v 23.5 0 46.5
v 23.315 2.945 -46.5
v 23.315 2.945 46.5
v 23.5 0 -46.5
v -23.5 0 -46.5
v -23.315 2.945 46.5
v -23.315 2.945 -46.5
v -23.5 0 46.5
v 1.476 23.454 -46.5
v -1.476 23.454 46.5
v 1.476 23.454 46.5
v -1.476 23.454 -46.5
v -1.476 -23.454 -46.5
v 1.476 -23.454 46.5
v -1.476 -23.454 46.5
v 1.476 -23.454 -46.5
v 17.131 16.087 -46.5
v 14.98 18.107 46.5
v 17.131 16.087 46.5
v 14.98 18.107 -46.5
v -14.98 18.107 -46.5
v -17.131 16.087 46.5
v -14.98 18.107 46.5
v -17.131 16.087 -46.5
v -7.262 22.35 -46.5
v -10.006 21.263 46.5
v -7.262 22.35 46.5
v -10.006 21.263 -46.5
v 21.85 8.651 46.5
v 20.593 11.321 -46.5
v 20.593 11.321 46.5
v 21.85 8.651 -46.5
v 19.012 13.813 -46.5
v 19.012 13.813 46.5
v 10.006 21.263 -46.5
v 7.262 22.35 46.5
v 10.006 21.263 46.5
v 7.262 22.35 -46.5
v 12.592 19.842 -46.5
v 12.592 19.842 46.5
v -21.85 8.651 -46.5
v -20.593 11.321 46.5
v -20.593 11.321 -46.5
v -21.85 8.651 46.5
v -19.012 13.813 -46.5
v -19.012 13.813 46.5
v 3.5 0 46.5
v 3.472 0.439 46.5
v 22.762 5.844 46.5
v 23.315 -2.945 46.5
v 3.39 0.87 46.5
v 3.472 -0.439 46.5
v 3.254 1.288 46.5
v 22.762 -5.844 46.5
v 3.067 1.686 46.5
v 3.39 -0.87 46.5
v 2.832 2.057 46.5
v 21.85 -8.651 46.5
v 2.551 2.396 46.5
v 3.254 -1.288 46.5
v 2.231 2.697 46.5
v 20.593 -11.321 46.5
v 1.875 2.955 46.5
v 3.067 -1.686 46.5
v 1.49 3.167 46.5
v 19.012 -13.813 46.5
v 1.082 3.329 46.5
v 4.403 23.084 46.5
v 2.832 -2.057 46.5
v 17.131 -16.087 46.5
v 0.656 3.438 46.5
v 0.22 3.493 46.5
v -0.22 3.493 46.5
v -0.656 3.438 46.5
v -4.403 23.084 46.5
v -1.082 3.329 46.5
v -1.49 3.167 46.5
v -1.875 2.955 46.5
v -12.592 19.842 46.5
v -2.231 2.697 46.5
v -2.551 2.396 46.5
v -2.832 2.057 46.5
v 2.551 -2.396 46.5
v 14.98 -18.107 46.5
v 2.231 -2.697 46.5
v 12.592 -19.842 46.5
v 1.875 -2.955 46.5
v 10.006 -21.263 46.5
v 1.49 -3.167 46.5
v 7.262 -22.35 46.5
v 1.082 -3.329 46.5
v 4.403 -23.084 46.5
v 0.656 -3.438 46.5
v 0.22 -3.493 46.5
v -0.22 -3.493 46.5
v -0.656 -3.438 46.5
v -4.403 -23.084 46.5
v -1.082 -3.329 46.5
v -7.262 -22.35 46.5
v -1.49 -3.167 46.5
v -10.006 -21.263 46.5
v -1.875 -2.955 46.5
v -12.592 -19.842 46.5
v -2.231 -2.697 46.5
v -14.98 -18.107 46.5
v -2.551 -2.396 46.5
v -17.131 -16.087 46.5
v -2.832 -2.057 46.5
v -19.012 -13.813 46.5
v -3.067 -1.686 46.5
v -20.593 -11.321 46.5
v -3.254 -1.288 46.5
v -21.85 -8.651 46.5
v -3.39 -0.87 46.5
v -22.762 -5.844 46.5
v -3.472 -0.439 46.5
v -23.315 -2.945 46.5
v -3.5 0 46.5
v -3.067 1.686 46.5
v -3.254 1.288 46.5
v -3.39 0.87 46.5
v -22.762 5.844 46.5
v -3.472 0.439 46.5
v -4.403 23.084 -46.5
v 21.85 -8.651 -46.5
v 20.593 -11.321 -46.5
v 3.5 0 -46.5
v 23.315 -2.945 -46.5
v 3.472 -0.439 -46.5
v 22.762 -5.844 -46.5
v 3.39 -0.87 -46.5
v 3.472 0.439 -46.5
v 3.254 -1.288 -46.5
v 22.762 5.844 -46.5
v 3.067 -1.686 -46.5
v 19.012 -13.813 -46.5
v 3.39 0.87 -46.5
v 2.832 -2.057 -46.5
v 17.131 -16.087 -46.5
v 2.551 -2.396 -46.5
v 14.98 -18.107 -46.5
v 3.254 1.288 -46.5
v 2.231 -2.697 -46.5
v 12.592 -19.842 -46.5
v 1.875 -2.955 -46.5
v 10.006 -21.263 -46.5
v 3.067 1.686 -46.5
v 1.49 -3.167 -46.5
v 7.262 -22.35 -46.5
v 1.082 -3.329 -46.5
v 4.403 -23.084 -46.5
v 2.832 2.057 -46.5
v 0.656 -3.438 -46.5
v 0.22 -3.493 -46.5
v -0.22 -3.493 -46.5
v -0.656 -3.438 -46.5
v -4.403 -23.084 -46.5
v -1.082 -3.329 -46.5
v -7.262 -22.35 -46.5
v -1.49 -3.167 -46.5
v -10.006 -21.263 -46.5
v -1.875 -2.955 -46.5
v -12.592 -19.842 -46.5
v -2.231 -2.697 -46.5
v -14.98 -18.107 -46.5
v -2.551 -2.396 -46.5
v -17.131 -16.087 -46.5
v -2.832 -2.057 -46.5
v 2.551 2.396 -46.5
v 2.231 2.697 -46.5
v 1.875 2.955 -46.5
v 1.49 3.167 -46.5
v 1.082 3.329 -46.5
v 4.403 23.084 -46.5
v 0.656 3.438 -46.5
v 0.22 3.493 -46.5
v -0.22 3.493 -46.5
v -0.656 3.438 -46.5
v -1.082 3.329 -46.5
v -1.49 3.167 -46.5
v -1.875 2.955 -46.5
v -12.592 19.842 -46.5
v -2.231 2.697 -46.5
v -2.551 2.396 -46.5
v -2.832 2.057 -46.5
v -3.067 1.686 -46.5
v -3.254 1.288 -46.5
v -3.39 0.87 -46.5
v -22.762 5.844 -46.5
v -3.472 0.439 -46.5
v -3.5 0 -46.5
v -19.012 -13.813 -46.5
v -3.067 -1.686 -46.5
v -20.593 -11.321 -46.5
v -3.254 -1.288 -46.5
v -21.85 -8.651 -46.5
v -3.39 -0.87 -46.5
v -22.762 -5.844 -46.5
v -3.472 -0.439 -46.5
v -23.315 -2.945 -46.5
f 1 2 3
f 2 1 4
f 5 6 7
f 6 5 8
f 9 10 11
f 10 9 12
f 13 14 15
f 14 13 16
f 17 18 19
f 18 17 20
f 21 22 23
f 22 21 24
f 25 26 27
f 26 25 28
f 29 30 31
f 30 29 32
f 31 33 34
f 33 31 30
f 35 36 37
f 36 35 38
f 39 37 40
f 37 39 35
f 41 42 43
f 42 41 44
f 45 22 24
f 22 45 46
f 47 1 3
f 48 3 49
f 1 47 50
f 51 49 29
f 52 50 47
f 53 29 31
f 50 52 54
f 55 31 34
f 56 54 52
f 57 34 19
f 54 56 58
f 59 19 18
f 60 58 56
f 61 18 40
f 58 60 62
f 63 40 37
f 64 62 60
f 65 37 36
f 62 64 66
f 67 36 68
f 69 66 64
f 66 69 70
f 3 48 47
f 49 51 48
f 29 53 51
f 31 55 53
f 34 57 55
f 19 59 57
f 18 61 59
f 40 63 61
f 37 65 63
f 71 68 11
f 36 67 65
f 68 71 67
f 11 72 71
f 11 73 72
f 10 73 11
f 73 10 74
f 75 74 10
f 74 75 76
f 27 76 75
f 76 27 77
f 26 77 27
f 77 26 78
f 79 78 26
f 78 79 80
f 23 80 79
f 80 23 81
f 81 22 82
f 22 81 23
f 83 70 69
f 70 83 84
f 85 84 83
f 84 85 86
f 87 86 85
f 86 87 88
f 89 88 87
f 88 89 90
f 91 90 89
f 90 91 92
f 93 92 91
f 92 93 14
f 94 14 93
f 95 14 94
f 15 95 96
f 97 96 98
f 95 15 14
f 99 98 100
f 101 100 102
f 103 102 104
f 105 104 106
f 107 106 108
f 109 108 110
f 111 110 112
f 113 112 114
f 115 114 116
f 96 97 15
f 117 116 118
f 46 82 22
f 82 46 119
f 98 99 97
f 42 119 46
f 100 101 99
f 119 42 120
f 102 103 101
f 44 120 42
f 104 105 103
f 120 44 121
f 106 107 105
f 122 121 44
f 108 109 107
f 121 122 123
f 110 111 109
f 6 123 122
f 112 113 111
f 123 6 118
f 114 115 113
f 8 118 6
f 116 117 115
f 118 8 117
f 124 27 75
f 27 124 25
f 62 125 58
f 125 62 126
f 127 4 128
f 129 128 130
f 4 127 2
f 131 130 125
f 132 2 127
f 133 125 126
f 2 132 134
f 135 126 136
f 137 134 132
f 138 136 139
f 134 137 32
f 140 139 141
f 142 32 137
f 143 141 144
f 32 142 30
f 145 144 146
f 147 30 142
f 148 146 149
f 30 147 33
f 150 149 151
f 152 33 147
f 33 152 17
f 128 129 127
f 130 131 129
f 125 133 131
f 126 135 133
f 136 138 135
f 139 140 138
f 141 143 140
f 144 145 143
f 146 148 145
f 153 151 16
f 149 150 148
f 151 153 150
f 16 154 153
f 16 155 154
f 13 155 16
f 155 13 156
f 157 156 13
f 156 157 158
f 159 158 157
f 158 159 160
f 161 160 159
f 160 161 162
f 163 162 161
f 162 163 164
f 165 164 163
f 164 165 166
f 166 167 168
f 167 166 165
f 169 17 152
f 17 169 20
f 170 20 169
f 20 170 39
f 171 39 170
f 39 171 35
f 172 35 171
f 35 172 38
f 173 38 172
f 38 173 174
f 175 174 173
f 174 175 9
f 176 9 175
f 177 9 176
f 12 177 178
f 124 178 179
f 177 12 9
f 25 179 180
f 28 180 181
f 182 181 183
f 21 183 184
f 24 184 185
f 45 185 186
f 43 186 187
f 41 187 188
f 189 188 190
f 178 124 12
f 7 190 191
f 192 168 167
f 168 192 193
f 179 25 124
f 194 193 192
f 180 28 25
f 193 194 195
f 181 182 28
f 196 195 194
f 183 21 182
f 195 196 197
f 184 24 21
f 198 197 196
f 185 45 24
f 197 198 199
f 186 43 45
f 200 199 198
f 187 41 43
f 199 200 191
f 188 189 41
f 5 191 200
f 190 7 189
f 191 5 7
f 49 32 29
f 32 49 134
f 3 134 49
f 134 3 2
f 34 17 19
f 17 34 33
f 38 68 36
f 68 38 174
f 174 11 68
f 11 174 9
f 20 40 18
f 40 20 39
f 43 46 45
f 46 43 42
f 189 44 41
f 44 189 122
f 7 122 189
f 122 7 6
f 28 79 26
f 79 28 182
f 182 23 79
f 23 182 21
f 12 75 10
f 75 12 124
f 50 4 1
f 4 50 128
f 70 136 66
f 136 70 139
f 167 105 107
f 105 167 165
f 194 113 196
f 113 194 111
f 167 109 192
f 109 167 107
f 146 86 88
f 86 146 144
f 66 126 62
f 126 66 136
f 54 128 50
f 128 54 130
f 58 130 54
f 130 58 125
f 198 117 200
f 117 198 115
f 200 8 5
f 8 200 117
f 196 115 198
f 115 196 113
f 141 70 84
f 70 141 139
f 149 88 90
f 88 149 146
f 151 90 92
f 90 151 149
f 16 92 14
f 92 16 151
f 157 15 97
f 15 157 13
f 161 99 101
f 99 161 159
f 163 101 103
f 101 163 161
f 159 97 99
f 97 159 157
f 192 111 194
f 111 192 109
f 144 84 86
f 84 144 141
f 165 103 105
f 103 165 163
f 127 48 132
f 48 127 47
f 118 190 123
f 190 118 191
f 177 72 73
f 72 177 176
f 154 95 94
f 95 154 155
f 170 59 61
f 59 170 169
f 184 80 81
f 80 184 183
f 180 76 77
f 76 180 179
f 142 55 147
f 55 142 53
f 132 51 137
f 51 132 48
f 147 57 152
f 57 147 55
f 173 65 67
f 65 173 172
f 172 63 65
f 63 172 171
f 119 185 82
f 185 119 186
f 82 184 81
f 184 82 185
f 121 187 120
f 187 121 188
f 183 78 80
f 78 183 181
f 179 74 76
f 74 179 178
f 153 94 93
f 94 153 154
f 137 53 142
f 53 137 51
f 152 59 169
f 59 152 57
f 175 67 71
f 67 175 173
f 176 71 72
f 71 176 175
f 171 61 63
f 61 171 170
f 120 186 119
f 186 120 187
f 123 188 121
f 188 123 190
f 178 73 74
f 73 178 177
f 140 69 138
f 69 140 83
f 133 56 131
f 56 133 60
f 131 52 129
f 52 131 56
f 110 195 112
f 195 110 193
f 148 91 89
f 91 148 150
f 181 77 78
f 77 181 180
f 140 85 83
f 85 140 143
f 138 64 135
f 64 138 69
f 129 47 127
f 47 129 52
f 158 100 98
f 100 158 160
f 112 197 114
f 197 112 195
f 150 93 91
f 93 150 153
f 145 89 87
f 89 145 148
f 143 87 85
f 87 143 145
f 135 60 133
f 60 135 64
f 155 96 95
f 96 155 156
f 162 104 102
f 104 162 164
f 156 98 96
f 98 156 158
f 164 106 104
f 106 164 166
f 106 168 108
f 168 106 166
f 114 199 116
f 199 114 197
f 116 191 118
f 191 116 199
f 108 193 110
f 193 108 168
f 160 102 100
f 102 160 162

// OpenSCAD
$fn = 50;


difference() {
	union() {
		translate(v = [0, 0, -46.5000000000]) {
			cylinder(h = 93, r = 23.5000000000);
		}
	}
	union() {
		translate(v = [0, 0, -100.0000000000]) {
			cylinder(h = 200, r = 3.5000000000);
		}
	}
}
